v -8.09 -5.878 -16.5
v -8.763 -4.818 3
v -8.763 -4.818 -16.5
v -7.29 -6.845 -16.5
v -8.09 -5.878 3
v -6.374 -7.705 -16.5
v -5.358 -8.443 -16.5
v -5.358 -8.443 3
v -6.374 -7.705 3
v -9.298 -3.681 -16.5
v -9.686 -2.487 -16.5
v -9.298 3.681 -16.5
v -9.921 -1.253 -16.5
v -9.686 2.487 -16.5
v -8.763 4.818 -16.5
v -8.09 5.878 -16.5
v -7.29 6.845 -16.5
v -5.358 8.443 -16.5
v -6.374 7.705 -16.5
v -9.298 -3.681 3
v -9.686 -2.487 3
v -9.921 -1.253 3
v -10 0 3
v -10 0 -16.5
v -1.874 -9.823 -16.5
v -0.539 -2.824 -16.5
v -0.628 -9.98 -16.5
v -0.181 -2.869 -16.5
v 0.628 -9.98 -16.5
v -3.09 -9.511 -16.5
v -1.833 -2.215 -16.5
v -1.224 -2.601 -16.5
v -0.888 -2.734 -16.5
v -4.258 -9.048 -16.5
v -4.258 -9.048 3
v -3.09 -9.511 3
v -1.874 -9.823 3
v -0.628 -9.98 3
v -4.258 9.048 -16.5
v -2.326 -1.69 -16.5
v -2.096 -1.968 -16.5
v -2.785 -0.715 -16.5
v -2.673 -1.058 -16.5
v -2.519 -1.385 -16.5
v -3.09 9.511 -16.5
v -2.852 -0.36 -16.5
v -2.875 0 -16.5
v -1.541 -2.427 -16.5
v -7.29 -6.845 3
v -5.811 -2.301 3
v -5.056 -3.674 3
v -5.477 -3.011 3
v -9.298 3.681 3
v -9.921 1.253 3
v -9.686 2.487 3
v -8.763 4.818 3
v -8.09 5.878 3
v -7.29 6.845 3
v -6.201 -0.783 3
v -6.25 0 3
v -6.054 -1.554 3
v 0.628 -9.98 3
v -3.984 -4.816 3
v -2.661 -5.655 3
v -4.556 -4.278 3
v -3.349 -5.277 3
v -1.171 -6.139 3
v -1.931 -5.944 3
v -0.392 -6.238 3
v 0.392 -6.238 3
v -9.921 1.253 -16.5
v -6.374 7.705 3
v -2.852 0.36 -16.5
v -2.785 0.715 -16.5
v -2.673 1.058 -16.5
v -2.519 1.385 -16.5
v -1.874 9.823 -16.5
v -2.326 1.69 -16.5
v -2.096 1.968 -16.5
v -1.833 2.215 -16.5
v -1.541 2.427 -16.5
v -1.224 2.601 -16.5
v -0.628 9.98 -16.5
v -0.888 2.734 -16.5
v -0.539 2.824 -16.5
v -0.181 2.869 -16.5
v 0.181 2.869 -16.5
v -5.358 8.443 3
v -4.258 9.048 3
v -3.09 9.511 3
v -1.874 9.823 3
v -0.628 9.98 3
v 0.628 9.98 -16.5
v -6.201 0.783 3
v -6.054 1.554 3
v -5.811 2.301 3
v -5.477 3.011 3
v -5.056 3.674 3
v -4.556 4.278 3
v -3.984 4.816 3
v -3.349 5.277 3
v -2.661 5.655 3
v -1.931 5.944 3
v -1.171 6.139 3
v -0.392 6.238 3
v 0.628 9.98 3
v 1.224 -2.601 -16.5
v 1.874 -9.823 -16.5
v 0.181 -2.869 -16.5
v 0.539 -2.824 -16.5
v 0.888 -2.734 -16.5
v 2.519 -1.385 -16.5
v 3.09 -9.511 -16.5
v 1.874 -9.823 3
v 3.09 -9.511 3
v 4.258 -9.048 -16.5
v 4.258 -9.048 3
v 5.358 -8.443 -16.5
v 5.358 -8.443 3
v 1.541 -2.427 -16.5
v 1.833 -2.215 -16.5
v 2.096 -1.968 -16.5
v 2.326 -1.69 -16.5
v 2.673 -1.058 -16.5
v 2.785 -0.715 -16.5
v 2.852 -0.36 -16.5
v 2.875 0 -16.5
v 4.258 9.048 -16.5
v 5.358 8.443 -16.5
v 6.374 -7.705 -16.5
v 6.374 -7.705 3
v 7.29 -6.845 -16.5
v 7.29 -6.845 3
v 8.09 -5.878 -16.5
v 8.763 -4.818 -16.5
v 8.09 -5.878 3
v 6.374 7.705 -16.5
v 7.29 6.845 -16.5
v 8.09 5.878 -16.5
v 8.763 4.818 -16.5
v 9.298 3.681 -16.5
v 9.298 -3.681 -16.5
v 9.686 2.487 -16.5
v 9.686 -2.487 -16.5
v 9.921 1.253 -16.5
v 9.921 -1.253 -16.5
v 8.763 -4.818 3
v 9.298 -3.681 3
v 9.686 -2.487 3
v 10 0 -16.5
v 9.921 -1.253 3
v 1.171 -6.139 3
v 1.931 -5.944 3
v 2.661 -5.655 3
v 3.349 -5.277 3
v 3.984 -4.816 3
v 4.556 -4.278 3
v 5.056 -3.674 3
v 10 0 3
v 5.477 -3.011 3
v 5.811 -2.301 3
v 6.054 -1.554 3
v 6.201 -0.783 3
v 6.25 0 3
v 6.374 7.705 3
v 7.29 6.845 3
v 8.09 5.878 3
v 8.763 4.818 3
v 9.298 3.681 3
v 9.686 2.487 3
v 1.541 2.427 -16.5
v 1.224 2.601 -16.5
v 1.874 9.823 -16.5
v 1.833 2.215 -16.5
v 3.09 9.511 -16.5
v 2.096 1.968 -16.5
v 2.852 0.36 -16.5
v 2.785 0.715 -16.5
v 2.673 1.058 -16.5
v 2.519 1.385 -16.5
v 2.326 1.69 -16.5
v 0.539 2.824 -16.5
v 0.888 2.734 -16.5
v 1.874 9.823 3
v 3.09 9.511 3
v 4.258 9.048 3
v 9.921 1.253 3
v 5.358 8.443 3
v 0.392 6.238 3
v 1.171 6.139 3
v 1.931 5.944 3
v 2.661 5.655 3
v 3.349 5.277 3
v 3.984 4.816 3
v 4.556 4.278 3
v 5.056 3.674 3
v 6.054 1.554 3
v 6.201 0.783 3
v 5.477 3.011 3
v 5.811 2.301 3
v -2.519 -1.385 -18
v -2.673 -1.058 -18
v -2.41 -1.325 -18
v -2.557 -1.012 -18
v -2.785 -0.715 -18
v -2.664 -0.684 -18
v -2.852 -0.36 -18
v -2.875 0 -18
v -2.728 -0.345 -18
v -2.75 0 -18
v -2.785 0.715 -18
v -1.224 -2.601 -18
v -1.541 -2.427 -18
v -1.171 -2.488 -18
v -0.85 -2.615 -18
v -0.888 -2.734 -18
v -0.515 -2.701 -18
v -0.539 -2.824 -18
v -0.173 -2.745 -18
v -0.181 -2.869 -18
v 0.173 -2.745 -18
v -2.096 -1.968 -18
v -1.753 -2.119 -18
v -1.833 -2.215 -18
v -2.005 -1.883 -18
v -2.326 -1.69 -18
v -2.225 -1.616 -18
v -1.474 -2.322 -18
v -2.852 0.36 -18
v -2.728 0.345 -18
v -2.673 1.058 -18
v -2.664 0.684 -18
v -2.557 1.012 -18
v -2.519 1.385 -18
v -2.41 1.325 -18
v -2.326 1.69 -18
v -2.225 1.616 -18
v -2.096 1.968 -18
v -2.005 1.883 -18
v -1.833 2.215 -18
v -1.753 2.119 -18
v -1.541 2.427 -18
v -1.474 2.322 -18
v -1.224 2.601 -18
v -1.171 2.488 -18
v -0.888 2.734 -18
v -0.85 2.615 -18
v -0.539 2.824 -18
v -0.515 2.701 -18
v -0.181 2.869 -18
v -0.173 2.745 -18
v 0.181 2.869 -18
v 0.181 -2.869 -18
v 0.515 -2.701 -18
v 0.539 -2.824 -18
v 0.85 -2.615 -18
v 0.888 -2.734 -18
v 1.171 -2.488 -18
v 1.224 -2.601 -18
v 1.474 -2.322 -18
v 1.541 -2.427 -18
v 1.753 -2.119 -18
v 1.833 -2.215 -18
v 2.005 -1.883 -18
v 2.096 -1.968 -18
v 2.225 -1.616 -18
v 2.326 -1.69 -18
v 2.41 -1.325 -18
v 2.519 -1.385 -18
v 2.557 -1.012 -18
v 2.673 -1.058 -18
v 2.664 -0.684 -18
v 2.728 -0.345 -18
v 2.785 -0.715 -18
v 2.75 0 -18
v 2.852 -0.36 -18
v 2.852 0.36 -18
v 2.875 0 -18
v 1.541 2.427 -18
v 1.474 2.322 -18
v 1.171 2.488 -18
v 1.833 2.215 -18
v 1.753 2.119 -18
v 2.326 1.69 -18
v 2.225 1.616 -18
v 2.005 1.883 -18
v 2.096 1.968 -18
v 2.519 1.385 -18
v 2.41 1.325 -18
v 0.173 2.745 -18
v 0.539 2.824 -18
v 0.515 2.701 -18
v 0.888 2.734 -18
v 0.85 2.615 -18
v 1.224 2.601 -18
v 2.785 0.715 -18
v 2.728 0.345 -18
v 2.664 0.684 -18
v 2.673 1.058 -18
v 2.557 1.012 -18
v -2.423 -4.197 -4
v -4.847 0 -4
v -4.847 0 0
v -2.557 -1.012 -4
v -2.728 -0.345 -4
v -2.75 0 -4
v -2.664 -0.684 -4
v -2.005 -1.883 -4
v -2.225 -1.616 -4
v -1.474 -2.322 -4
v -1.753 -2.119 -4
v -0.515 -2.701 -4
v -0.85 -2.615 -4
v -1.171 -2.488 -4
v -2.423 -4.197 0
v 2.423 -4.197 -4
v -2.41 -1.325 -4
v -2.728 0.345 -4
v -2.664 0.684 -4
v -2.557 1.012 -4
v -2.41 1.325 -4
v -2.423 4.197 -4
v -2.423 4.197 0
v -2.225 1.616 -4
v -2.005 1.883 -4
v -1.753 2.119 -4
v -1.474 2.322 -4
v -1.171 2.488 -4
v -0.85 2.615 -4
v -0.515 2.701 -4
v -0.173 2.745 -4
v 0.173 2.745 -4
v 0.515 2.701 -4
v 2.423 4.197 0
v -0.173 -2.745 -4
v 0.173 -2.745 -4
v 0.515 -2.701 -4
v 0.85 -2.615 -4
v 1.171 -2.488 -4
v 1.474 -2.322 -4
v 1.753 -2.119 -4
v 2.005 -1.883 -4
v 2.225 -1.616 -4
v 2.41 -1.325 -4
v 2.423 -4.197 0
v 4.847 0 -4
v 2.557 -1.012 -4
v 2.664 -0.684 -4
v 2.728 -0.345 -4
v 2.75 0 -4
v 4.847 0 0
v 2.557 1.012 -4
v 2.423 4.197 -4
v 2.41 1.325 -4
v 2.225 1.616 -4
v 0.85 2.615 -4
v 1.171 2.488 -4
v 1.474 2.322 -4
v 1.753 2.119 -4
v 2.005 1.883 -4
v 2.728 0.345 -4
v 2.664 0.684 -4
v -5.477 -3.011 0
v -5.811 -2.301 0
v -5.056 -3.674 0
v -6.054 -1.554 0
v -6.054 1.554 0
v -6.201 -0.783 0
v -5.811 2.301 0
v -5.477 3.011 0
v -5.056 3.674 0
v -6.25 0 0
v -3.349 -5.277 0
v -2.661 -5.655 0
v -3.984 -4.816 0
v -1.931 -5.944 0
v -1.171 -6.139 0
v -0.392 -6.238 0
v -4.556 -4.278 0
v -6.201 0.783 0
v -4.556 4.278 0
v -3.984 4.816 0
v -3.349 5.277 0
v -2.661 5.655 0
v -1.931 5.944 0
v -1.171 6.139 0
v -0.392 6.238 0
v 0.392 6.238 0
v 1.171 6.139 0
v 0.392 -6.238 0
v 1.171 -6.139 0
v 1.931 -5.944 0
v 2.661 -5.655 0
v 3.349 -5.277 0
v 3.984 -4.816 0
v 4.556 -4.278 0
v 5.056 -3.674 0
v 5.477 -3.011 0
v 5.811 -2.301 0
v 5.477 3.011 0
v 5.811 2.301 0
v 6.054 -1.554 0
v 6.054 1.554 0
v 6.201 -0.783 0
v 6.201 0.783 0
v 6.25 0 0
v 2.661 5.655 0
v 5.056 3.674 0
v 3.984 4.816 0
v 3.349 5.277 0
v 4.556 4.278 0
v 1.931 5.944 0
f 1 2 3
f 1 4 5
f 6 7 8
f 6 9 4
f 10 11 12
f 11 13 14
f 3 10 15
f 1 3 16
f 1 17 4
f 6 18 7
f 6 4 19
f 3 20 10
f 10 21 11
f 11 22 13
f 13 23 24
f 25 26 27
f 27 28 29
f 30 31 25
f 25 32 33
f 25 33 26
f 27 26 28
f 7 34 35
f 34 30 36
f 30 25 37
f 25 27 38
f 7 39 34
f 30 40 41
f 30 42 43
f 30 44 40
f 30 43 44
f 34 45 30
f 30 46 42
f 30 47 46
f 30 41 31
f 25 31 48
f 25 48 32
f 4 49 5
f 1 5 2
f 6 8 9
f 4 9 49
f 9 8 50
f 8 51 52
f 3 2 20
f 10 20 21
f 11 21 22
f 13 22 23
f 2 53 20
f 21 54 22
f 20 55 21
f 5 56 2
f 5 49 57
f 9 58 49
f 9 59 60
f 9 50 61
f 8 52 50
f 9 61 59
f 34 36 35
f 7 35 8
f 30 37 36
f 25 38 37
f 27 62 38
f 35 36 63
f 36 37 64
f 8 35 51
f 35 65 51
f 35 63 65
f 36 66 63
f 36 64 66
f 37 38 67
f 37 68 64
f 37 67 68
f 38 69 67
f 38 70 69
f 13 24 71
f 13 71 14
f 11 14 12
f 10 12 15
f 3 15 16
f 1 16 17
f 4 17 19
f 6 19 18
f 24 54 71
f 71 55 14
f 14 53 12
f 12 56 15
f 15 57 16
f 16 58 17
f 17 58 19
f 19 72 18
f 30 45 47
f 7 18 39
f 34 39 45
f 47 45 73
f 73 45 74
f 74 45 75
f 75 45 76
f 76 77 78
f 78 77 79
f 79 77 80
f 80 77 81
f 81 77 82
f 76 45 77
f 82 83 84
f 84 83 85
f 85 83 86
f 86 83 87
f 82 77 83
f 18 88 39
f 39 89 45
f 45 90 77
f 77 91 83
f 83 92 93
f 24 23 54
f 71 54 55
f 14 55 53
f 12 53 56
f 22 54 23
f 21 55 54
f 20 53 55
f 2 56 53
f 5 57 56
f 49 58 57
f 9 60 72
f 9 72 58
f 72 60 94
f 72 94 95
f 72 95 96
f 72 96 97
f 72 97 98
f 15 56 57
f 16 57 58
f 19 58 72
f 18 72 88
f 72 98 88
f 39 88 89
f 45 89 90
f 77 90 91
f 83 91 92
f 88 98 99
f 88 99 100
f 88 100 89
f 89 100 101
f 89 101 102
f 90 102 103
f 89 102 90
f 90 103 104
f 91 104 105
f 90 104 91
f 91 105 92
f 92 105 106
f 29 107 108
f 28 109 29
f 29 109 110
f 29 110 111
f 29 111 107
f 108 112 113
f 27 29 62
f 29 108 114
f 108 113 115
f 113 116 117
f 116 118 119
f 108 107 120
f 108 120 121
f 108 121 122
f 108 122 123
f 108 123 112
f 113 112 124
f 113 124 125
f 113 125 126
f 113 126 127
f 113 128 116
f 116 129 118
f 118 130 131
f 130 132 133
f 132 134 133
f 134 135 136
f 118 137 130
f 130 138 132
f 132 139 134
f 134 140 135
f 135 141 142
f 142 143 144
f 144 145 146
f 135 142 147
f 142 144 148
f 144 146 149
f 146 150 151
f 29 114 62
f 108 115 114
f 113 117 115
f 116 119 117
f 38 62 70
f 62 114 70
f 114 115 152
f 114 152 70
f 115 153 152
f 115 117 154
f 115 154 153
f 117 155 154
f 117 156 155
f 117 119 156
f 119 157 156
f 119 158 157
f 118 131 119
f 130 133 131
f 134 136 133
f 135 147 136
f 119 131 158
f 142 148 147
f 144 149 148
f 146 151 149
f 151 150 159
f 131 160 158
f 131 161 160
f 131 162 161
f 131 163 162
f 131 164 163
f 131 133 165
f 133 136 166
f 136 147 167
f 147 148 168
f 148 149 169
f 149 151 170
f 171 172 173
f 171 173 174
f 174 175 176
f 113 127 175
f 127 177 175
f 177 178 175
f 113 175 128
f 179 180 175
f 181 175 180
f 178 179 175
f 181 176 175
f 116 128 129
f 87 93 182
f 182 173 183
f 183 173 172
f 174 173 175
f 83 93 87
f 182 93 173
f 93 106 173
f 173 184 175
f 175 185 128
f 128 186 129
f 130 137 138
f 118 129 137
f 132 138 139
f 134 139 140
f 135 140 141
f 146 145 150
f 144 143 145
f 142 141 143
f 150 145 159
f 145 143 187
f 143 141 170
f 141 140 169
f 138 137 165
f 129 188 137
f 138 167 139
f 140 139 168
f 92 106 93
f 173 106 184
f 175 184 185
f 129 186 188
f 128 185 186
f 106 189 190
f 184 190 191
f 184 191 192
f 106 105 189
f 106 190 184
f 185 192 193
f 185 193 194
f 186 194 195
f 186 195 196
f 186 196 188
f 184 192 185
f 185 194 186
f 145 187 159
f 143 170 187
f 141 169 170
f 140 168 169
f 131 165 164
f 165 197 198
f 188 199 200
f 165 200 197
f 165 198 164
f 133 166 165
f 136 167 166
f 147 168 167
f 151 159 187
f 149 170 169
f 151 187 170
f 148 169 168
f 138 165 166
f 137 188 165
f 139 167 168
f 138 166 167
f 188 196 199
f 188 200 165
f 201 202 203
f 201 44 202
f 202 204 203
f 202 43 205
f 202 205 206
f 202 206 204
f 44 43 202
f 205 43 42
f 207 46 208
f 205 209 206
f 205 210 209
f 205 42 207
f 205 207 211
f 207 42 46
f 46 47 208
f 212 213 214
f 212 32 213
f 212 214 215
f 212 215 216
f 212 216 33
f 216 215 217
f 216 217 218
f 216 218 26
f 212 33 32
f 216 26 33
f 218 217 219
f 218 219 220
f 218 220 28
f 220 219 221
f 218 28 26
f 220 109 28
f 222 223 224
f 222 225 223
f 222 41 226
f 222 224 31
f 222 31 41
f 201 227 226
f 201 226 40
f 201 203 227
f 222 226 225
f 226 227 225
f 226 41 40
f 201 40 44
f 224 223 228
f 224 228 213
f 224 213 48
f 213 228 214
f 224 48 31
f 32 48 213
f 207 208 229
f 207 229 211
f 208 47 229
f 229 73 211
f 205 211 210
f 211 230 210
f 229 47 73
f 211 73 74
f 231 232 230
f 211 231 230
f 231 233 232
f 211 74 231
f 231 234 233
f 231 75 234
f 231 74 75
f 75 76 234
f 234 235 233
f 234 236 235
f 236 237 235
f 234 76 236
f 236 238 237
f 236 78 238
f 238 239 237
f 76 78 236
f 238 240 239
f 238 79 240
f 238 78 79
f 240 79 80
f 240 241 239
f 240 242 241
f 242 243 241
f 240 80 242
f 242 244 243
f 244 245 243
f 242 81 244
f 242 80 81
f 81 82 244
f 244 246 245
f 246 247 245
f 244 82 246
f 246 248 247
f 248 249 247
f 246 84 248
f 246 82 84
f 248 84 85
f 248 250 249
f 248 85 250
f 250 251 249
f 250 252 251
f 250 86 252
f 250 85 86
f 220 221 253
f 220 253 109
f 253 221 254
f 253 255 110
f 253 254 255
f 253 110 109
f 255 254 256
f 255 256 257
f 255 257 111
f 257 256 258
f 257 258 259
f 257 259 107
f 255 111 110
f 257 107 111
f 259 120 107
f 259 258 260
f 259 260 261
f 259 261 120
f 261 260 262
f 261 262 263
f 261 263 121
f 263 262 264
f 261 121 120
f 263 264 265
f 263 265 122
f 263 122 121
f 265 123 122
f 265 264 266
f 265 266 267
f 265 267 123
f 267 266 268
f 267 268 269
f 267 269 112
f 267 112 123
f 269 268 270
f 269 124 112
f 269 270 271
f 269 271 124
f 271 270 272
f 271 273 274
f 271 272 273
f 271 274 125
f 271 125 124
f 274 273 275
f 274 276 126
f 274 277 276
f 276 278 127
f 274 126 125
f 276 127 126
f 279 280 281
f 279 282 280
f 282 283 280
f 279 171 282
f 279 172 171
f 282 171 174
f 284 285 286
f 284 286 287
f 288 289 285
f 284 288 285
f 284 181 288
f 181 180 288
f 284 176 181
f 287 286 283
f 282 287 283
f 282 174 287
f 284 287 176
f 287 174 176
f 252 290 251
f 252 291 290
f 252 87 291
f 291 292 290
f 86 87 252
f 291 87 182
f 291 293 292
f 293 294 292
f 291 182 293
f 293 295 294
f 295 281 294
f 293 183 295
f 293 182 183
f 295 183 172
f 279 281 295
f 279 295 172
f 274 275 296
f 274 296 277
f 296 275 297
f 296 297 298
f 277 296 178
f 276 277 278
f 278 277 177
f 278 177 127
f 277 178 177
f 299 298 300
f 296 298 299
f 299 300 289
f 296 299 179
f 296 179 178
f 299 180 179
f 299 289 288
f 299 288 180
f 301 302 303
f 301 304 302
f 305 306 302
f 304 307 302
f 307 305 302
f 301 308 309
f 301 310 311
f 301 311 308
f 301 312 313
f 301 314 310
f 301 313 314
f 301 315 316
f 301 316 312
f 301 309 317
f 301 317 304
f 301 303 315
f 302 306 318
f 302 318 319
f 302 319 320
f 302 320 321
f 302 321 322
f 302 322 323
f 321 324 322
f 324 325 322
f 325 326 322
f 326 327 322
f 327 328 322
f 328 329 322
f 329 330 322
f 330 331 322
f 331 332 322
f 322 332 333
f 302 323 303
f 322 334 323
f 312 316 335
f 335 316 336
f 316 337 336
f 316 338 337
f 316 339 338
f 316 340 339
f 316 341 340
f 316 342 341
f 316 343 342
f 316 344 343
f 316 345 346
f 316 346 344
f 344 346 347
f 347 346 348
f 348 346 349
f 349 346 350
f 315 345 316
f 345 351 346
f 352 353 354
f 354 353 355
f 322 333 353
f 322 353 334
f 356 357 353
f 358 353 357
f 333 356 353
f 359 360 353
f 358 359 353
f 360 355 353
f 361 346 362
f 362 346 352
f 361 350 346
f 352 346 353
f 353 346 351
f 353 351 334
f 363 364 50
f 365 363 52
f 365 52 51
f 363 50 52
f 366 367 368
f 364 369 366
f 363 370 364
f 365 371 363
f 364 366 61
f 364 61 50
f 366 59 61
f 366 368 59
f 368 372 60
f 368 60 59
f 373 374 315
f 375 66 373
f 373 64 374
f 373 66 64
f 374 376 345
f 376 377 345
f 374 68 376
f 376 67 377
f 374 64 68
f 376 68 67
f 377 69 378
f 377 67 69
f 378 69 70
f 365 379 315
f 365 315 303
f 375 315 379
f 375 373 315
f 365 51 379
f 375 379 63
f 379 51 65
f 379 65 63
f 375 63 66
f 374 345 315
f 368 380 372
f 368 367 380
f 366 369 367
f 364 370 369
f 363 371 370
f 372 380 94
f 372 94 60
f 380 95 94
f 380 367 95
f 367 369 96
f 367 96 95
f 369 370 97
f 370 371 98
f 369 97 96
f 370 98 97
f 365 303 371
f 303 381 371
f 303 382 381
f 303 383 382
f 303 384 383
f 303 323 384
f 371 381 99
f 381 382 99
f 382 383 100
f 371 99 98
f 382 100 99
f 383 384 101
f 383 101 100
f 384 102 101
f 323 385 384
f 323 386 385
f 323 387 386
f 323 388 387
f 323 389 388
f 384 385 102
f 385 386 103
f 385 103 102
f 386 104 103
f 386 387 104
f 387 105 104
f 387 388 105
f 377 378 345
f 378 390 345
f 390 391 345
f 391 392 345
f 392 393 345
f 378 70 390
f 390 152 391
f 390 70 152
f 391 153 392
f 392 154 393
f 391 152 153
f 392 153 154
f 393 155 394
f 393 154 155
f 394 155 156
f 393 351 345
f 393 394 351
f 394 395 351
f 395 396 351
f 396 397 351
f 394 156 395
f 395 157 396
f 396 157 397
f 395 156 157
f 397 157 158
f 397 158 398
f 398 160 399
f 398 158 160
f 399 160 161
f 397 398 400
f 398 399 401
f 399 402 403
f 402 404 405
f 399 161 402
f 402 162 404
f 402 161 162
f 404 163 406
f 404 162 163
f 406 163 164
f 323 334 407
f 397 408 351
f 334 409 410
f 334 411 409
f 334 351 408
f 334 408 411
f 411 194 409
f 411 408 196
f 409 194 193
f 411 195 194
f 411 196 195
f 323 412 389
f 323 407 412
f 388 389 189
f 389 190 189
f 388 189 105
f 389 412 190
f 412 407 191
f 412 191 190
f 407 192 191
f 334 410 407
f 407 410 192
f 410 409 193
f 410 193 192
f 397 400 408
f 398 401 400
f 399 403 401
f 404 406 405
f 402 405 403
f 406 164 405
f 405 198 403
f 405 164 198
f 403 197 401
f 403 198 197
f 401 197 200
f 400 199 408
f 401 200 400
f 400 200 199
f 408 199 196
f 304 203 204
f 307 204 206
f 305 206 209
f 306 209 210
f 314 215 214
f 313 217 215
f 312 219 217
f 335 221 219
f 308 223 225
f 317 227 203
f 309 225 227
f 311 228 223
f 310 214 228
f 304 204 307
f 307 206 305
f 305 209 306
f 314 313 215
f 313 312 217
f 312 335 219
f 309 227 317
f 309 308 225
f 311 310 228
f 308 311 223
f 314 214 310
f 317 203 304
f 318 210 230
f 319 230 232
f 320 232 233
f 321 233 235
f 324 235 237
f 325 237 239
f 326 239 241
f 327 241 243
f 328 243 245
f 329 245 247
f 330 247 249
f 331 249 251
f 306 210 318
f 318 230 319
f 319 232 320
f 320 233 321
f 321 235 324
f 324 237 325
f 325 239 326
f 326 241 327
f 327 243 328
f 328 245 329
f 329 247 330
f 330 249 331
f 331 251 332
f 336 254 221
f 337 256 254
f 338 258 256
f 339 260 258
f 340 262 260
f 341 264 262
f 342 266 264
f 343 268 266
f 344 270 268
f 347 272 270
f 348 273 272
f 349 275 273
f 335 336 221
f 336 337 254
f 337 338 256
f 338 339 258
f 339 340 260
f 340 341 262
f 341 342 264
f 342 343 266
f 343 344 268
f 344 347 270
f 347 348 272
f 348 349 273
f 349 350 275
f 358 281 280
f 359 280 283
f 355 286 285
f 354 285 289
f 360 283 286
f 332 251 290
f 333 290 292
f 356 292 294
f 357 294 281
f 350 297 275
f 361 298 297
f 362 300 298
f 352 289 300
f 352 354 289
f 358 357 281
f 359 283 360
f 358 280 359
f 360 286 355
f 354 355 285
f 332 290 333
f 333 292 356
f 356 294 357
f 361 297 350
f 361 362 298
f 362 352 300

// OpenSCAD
$fn = 50;

difference() {
	union() {
		translate(v = [0, 0, -16.5]) {
			cylinder(h = 19.5, r = 10.0);
		}
		#translate(v = [0, 0, -18.0]) {
			cylinder(h = 18, r = 2.875);
		}
	}
	union() {
		translate(v = [0, 0, 0]) {
			rotate(a = [0, 0, 0]) {
				difference() {
					union() {
						translate(v = [0, 0, -4]) {
							linear_extrude(height = 4) {
								polygon(points = [[4.8468, 0.0], [2.4234000000000004, 4.197451927062417], [-2.423399999999999, 4.197451927062417], [-4.8468, 5.935618106107392e-16], [-2.423400000000002, -4.197451927062416], [2.423399999999997, -4.197451927062419]]);
							}
						}
					}
					union();
				}
			}
		}
		#cylinder(h = 3, r = 6.25);
		#translate(v = [0, 0, -100.0]) {
			cylinder(h = 200, r = 2.75);
		}
	}
}
